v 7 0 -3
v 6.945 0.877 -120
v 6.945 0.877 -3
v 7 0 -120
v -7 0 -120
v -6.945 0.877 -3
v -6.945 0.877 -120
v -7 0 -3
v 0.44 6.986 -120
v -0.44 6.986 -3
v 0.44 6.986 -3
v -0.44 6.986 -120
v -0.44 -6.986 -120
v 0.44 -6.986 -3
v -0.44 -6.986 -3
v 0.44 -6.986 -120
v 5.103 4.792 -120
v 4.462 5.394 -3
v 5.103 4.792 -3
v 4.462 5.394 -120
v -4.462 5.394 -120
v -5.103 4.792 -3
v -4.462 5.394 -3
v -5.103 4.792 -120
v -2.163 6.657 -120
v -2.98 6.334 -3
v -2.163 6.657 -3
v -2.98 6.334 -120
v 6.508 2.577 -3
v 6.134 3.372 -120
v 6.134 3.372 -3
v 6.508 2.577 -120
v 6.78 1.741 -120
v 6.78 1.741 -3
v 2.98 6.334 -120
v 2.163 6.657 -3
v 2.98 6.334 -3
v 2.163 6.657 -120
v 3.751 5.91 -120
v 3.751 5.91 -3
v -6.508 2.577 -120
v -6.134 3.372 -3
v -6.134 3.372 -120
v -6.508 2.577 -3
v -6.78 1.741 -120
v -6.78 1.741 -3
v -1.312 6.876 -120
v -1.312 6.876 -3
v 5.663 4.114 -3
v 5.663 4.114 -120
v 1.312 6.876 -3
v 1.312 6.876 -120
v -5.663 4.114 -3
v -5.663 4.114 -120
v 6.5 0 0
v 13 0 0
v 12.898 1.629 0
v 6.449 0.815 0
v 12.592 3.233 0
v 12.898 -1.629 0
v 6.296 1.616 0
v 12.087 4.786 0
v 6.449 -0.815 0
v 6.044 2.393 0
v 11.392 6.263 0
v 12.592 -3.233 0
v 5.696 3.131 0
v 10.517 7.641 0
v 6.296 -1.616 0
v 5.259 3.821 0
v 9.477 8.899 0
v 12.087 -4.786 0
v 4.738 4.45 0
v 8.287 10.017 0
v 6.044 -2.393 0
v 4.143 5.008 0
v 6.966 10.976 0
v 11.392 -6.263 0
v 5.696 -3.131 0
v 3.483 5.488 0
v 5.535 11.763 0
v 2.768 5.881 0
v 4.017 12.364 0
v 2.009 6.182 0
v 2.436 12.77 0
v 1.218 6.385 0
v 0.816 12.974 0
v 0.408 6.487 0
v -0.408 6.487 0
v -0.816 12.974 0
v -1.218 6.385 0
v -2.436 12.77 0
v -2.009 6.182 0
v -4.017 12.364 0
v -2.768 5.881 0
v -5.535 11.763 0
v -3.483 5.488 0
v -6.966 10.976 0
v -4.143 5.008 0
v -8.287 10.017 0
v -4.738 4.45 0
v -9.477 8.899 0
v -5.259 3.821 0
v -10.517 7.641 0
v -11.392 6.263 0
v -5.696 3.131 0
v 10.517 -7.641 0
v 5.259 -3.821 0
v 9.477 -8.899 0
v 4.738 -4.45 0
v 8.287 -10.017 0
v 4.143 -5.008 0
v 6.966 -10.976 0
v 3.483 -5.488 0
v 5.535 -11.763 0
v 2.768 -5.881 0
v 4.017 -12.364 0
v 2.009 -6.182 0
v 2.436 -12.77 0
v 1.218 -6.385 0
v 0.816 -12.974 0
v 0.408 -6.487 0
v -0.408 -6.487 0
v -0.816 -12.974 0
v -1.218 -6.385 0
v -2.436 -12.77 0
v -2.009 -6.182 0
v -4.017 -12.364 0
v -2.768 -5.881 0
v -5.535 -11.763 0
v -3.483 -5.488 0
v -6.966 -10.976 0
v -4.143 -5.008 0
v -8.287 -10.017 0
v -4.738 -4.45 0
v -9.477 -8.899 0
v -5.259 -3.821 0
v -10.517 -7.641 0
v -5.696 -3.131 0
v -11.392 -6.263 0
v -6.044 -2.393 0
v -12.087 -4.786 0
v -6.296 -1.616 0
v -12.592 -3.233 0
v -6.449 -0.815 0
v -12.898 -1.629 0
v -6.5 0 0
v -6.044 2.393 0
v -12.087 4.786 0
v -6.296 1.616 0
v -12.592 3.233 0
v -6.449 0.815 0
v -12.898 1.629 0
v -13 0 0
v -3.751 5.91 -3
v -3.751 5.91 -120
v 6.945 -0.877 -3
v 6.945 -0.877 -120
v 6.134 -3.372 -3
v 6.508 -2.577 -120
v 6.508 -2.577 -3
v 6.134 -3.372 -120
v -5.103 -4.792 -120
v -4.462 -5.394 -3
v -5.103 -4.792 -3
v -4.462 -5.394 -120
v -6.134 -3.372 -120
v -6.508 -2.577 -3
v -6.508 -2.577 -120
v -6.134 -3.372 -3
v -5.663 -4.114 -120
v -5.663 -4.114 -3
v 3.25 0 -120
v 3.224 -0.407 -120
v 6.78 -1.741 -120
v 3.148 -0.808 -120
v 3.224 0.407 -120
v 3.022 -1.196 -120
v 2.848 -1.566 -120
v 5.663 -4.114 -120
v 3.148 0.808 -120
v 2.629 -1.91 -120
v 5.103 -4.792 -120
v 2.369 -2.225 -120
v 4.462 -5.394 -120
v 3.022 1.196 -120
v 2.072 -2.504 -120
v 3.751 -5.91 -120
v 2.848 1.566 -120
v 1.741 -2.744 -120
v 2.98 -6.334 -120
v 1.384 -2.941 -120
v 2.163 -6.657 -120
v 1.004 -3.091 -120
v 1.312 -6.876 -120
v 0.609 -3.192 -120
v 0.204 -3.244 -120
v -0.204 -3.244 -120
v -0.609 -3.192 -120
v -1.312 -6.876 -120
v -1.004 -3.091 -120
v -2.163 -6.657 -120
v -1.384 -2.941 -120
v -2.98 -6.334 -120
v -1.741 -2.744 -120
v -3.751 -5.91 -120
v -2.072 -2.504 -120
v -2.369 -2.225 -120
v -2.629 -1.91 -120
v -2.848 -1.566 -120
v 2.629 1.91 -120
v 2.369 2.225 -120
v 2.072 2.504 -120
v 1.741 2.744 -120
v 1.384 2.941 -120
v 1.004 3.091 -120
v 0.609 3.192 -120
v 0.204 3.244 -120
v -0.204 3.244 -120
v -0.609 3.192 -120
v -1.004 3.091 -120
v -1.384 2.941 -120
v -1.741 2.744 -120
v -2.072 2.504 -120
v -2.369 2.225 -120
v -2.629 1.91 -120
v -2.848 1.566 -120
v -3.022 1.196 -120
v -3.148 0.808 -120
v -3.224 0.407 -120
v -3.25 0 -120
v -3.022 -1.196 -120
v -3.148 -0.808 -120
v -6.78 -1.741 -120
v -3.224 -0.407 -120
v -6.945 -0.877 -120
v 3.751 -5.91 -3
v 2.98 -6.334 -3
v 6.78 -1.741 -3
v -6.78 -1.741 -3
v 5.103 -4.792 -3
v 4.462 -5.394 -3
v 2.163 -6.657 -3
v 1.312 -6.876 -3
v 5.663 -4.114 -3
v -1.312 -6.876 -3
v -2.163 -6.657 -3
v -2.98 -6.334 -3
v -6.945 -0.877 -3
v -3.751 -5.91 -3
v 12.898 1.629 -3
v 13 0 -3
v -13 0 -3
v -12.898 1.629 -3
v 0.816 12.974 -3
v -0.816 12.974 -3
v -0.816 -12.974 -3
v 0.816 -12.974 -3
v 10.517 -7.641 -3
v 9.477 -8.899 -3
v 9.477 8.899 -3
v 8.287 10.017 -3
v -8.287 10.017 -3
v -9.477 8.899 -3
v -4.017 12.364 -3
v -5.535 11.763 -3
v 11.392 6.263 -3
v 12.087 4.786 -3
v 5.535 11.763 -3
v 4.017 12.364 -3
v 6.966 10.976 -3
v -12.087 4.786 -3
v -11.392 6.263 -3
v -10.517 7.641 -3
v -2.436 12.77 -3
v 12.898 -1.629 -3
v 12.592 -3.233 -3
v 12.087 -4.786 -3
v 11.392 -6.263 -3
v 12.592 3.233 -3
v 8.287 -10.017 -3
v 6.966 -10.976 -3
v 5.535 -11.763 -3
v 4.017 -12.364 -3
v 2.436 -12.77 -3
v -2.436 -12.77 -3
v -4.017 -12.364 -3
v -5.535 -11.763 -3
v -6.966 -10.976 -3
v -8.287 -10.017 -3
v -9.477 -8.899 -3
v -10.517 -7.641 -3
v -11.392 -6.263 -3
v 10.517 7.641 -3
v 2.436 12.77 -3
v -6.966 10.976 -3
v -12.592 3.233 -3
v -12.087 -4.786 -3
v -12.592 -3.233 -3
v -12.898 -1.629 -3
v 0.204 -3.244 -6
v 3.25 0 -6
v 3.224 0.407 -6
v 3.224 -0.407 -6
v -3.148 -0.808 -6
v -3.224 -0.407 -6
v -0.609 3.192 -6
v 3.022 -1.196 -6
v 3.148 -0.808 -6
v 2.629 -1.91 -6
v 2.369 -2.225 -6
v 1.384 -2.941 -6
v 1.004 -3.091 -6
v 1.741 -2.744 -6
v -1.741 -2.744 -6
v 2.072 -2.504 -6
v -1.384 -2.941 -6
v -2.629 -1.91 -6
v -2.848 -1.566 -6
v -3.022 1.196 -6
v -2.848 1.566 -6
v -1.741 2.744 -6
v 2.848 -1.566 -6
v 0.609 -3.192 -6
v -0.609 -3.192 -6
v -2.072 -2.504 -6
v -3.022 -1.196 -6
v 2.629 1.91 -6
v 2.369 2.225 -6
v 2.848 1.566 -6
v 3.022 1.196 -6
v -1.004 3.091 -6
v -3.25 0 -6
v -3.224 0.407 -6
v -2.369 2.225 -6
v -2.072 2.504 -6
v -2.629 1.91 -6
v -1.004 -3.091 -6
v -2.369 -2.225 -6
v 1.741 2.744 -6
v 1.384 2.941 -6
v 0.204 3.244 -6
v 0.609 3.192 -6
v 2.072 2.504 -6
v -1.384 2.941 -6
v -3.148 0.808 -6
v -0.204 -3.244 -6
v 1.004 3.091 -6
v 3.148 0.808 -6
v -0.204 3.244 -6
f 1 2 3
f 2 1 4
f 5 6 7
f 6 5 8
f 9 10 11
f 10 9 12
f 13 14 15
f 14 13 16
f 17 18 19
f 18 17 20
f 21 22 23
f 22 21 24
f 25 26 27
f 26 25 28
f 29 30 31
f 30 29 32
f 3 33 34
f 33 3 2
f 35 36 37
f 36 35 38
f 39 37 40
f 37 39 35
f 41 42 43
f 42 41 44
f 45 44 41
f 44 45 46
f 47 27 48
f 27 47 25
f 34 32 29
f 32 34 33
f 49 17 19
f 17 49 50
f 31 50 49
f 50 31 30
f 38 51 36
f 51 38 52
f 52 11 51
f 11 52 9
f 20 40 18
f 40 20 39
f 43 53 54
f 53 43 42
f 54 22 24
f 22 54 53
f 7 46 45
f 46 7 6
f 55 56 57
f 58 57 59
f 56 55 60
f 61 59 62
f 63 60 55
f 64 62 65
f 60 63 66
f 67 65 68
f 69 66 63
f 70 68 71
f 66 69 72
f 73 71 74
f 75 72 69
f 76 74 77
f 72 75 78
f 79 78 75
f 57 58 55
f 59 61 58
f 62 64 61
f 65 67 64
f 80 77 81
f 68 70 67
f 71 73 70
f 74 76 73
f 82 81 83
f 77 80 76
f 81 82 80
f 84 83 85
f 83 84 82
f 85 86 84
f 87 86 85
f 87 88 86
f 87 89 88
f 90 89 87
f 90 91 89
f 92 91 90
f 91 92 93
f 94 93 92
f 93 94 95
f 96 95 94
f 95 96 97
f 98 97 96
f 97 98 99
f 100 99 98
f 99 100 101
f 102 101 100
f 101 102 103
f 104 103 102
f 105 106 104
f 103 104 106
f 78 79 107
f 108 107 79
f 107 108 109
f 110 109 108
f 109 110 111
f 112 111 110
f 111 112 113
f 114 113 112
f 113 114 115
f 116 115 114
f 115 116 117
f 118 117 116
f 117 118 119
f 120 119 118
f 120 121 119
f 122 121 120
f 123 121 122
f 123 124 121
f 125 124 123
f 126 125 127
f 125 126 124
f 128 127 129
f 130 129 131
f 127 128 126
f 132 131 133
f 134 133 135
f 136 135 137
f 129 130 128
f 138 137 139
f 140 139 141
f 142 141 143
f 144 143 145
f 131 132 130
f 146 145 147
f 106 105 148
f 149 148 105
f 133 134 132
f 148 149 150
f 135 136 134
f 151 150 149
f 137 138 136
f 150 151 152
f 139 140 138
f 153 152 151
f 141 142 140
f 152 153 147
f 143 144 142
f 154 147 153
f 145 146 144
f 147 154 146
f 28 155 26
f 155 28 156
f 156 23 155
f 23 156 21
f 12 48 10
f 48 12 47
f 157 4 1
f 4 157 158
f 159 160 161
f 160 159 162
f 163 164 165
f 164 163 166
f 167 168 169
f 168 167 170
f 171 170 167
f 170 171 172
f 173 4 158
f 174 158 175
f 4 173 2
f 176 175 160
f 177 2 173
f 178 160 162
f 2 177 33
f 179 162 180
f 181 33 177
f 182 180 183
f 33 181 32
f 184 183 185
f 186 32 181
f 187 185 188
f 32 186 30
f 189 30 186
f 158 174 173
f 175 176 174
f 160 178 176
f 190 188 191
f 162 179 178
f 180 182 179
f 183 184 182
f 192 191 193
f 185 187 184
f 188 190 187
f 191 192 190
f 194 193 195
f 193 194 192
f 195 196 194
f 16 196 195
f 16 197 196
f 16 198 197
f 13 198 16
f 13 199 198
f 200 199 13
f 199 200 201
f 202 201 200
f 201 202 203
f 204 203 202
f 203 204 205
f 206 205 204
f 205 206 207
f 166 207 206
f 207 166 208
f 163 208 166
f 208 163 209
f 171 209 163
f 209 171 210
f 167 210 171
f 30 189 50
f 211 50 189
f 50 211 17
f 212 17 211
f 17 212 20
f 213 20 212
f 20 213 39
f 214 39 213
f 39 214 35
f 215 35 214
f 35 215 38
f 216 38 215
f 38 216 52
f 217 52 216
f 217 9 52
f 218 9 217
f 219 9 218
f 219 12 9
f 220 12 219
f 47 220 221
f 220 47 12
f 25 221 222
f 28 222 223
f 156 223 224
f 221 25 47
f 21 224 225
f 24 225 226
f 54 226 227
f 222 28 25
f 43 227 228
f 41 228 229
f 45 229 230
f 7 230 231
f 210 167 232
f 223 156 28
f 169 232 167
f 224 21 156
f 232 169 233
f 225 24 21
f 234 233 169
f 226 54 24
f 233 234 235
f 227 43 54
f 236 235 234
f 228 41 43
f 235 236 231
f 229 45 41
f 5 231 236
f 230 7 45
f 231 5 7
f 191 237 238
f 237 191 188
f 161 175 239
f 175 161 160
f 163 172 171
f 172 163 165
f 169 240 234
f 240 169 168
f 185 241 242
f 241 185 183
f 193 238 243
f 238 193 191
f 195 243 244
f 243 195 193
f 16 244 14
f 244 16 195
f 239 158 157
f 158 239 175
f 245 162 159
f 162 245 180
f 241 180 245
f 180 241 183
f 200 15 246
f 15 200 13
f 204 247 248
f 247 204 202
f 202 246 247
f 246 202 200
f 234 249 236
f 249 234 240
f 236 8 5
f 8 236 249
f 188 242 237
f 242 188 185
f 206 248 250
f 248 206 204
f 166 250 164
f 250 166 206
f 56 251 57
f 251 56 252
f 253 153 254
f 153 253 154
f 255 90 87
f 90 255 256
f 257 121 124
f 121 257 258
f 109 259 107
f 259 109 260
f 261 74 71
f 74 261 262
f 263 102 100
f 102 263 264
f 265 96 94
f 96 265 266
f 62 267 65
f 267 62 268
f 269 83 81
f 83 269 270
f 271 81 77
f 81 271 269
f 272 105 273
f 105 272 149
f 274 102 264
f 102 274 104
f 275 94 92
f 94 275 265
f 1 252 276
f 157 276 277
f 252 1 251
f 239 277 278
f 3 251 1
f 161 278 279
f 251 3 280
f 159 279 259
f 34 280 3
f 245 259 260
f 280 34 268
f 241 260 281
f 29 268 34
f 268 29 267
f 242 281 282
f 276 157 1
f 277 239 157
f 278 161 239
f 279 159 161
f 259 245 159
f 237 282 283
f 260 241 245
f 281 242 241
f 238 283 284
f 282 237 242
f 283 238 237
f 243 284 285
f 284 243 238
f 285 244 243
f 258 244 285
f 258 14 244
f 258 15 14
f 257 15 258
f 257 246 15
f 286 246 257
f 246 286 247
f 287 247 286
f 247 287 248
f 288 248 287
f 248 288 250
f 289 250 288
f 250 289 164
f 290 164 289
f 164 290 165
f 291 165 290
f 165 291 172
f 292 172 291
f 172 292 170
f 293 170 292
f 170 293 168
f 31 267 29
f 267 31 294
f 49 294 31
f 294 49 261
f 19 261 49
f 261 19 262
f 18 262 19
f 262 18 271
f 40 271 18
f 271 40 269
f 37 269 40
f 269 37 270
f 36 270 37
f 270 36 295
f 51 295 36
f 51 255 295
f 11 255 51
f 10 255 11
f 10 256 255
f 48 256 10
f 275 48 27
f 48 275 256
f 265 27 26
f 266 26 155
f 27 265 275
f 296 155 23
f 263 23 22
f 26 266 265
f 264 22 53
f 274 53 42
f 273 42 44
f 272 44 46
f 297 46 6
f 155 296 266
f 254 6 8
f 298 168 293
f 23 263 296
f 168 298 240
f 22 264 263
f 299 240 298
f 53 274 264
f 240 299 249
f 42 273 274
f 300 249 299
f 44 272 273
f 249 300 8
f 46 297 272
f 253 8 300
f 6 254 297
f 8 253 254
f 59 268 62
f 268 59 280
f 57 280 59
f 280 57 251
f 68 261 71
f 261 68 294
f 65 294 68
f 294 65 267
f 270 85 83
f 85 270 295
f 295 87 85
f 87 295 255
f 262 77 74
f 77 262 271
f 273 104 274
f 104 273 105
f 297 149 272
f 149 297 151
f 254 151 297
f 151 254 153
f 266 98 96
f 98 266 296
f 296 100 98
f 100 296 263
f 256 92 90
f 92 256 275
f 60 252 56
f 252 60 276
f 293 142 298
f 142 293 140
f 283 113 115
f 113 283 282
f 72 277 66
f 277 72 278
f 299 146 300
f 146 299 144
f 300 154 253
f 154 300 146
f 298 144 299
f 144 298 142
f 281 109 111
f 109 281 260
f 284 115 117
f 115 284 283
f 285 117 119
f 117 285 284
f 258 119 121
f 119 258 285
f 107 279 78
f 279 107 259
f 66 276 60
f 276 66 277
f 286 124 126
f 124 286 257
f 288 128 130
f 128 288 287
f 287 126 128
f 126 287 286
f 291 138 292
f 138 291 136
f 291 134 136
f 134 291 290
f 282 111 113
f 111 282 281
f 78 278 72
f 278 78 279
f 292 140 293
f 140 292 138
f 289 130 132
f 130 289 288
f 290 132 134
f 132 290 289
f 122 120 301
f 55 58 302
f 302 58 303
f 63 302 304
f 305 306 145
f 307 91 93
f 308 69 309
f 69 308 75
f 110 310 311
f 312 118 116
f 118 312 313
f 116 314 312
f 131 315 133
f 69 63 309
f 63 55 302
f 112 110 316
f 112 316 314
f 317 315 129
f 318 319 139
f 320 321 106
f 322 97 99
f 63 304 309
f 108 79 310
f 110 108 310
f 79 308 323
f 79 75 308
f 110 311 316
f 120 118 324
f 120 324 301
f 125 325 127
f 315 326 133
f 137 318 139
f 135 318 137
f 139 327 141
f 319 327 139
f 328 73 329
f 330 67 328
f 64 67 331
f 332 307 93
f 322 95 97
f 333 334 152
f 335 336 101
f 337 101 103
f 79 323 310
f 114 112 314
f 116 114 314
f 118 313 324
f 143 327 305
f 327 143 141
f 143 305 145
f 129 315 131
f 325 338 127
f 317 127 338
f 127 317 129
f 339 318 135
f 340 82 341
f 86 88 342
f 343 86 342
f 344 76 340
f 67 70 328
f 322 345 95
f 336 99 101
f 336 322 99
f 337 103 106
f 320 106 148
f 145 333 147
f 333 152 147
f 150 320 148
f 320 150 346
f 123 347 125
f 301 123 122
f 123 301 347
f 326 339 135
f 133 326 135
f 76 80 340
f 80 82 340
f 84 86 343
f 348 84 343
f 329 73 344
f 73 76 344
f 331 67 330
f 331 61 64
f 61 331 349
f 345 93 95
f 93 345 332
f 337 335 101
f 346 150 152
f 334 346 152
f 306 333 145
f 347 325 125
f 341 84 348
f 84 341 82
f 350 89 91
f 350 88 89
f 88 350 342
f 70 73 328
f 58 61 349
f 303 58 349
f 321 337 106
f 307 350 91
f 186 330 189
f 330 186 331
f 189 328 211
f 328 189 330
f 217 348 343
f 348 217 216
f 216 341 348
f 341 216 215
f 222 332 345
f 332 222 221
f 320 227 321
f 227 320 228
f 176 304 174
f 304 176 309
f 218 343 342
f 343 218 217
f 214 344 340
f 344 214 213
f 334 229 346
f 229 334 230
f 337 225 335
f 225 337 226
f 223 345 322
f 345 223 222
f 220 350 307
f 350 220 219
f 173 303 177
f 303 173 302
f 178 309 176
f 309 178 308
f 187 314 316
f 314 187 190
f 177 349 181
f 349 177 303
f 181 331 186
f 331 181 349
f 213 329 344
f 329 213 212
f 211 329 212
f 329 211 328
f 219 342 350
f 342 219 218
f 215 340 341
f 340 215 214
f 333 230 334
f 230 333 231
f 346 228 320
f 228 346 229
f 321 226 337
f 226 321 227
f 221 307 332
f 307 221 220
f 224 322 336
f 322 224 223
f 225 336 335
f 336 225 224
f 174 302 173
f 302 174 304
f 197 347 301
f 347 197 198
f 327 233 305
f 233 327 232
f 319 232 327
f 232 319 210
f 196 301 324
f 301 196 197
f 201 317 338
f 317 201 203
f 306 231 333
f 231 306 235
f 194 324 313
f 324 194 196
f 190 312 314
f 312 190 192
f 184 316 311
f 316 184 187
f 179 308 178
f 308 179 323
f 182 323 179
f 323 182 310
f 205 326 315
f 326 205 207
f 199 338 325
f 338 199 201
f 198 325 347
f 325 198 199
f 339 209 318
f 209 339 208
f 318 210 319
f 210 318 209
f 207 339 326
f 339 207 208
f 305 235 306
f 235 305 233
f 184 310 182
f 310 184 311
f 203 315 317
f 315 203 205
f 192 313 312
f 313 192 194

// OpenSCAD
$fn = 50;


difference() {
	union() {
		translate(v = [0, 0, -120.0000000000]) {
			cylinder(h = 120, r = 7.0000000000);
		}
		translate(v = [0, 0, -3.0000000000]) {
			cylinder(h = 3, r = 13.0000000000);
		}
	}
	union() {
		translate(v = [0, 0, 0]) {
			rotate(a = [0, 0, 0]) {
				difference() {
					union() {
						#translate(v = [0, 0, -120.0000000000]) {
							cylinder(h = 120, r = 2.2500000000);
						}
						#translate(v = [0, 0, -6]) {
							cylinder(h = 6, r1 = 3.2500000000, r2 = 6.5000000000);
						}
						#translate(v = [0, 0, -120.0000000000]) {
							cylinder(h = 120, r = 3.2500000000);
						}
						#translate(v = [0, 0, -120.0000000000]) {
							cylinder(h = 120, r = 2.2500000000);
						}
					}
					union();
				}
			}
		}
	}
}
